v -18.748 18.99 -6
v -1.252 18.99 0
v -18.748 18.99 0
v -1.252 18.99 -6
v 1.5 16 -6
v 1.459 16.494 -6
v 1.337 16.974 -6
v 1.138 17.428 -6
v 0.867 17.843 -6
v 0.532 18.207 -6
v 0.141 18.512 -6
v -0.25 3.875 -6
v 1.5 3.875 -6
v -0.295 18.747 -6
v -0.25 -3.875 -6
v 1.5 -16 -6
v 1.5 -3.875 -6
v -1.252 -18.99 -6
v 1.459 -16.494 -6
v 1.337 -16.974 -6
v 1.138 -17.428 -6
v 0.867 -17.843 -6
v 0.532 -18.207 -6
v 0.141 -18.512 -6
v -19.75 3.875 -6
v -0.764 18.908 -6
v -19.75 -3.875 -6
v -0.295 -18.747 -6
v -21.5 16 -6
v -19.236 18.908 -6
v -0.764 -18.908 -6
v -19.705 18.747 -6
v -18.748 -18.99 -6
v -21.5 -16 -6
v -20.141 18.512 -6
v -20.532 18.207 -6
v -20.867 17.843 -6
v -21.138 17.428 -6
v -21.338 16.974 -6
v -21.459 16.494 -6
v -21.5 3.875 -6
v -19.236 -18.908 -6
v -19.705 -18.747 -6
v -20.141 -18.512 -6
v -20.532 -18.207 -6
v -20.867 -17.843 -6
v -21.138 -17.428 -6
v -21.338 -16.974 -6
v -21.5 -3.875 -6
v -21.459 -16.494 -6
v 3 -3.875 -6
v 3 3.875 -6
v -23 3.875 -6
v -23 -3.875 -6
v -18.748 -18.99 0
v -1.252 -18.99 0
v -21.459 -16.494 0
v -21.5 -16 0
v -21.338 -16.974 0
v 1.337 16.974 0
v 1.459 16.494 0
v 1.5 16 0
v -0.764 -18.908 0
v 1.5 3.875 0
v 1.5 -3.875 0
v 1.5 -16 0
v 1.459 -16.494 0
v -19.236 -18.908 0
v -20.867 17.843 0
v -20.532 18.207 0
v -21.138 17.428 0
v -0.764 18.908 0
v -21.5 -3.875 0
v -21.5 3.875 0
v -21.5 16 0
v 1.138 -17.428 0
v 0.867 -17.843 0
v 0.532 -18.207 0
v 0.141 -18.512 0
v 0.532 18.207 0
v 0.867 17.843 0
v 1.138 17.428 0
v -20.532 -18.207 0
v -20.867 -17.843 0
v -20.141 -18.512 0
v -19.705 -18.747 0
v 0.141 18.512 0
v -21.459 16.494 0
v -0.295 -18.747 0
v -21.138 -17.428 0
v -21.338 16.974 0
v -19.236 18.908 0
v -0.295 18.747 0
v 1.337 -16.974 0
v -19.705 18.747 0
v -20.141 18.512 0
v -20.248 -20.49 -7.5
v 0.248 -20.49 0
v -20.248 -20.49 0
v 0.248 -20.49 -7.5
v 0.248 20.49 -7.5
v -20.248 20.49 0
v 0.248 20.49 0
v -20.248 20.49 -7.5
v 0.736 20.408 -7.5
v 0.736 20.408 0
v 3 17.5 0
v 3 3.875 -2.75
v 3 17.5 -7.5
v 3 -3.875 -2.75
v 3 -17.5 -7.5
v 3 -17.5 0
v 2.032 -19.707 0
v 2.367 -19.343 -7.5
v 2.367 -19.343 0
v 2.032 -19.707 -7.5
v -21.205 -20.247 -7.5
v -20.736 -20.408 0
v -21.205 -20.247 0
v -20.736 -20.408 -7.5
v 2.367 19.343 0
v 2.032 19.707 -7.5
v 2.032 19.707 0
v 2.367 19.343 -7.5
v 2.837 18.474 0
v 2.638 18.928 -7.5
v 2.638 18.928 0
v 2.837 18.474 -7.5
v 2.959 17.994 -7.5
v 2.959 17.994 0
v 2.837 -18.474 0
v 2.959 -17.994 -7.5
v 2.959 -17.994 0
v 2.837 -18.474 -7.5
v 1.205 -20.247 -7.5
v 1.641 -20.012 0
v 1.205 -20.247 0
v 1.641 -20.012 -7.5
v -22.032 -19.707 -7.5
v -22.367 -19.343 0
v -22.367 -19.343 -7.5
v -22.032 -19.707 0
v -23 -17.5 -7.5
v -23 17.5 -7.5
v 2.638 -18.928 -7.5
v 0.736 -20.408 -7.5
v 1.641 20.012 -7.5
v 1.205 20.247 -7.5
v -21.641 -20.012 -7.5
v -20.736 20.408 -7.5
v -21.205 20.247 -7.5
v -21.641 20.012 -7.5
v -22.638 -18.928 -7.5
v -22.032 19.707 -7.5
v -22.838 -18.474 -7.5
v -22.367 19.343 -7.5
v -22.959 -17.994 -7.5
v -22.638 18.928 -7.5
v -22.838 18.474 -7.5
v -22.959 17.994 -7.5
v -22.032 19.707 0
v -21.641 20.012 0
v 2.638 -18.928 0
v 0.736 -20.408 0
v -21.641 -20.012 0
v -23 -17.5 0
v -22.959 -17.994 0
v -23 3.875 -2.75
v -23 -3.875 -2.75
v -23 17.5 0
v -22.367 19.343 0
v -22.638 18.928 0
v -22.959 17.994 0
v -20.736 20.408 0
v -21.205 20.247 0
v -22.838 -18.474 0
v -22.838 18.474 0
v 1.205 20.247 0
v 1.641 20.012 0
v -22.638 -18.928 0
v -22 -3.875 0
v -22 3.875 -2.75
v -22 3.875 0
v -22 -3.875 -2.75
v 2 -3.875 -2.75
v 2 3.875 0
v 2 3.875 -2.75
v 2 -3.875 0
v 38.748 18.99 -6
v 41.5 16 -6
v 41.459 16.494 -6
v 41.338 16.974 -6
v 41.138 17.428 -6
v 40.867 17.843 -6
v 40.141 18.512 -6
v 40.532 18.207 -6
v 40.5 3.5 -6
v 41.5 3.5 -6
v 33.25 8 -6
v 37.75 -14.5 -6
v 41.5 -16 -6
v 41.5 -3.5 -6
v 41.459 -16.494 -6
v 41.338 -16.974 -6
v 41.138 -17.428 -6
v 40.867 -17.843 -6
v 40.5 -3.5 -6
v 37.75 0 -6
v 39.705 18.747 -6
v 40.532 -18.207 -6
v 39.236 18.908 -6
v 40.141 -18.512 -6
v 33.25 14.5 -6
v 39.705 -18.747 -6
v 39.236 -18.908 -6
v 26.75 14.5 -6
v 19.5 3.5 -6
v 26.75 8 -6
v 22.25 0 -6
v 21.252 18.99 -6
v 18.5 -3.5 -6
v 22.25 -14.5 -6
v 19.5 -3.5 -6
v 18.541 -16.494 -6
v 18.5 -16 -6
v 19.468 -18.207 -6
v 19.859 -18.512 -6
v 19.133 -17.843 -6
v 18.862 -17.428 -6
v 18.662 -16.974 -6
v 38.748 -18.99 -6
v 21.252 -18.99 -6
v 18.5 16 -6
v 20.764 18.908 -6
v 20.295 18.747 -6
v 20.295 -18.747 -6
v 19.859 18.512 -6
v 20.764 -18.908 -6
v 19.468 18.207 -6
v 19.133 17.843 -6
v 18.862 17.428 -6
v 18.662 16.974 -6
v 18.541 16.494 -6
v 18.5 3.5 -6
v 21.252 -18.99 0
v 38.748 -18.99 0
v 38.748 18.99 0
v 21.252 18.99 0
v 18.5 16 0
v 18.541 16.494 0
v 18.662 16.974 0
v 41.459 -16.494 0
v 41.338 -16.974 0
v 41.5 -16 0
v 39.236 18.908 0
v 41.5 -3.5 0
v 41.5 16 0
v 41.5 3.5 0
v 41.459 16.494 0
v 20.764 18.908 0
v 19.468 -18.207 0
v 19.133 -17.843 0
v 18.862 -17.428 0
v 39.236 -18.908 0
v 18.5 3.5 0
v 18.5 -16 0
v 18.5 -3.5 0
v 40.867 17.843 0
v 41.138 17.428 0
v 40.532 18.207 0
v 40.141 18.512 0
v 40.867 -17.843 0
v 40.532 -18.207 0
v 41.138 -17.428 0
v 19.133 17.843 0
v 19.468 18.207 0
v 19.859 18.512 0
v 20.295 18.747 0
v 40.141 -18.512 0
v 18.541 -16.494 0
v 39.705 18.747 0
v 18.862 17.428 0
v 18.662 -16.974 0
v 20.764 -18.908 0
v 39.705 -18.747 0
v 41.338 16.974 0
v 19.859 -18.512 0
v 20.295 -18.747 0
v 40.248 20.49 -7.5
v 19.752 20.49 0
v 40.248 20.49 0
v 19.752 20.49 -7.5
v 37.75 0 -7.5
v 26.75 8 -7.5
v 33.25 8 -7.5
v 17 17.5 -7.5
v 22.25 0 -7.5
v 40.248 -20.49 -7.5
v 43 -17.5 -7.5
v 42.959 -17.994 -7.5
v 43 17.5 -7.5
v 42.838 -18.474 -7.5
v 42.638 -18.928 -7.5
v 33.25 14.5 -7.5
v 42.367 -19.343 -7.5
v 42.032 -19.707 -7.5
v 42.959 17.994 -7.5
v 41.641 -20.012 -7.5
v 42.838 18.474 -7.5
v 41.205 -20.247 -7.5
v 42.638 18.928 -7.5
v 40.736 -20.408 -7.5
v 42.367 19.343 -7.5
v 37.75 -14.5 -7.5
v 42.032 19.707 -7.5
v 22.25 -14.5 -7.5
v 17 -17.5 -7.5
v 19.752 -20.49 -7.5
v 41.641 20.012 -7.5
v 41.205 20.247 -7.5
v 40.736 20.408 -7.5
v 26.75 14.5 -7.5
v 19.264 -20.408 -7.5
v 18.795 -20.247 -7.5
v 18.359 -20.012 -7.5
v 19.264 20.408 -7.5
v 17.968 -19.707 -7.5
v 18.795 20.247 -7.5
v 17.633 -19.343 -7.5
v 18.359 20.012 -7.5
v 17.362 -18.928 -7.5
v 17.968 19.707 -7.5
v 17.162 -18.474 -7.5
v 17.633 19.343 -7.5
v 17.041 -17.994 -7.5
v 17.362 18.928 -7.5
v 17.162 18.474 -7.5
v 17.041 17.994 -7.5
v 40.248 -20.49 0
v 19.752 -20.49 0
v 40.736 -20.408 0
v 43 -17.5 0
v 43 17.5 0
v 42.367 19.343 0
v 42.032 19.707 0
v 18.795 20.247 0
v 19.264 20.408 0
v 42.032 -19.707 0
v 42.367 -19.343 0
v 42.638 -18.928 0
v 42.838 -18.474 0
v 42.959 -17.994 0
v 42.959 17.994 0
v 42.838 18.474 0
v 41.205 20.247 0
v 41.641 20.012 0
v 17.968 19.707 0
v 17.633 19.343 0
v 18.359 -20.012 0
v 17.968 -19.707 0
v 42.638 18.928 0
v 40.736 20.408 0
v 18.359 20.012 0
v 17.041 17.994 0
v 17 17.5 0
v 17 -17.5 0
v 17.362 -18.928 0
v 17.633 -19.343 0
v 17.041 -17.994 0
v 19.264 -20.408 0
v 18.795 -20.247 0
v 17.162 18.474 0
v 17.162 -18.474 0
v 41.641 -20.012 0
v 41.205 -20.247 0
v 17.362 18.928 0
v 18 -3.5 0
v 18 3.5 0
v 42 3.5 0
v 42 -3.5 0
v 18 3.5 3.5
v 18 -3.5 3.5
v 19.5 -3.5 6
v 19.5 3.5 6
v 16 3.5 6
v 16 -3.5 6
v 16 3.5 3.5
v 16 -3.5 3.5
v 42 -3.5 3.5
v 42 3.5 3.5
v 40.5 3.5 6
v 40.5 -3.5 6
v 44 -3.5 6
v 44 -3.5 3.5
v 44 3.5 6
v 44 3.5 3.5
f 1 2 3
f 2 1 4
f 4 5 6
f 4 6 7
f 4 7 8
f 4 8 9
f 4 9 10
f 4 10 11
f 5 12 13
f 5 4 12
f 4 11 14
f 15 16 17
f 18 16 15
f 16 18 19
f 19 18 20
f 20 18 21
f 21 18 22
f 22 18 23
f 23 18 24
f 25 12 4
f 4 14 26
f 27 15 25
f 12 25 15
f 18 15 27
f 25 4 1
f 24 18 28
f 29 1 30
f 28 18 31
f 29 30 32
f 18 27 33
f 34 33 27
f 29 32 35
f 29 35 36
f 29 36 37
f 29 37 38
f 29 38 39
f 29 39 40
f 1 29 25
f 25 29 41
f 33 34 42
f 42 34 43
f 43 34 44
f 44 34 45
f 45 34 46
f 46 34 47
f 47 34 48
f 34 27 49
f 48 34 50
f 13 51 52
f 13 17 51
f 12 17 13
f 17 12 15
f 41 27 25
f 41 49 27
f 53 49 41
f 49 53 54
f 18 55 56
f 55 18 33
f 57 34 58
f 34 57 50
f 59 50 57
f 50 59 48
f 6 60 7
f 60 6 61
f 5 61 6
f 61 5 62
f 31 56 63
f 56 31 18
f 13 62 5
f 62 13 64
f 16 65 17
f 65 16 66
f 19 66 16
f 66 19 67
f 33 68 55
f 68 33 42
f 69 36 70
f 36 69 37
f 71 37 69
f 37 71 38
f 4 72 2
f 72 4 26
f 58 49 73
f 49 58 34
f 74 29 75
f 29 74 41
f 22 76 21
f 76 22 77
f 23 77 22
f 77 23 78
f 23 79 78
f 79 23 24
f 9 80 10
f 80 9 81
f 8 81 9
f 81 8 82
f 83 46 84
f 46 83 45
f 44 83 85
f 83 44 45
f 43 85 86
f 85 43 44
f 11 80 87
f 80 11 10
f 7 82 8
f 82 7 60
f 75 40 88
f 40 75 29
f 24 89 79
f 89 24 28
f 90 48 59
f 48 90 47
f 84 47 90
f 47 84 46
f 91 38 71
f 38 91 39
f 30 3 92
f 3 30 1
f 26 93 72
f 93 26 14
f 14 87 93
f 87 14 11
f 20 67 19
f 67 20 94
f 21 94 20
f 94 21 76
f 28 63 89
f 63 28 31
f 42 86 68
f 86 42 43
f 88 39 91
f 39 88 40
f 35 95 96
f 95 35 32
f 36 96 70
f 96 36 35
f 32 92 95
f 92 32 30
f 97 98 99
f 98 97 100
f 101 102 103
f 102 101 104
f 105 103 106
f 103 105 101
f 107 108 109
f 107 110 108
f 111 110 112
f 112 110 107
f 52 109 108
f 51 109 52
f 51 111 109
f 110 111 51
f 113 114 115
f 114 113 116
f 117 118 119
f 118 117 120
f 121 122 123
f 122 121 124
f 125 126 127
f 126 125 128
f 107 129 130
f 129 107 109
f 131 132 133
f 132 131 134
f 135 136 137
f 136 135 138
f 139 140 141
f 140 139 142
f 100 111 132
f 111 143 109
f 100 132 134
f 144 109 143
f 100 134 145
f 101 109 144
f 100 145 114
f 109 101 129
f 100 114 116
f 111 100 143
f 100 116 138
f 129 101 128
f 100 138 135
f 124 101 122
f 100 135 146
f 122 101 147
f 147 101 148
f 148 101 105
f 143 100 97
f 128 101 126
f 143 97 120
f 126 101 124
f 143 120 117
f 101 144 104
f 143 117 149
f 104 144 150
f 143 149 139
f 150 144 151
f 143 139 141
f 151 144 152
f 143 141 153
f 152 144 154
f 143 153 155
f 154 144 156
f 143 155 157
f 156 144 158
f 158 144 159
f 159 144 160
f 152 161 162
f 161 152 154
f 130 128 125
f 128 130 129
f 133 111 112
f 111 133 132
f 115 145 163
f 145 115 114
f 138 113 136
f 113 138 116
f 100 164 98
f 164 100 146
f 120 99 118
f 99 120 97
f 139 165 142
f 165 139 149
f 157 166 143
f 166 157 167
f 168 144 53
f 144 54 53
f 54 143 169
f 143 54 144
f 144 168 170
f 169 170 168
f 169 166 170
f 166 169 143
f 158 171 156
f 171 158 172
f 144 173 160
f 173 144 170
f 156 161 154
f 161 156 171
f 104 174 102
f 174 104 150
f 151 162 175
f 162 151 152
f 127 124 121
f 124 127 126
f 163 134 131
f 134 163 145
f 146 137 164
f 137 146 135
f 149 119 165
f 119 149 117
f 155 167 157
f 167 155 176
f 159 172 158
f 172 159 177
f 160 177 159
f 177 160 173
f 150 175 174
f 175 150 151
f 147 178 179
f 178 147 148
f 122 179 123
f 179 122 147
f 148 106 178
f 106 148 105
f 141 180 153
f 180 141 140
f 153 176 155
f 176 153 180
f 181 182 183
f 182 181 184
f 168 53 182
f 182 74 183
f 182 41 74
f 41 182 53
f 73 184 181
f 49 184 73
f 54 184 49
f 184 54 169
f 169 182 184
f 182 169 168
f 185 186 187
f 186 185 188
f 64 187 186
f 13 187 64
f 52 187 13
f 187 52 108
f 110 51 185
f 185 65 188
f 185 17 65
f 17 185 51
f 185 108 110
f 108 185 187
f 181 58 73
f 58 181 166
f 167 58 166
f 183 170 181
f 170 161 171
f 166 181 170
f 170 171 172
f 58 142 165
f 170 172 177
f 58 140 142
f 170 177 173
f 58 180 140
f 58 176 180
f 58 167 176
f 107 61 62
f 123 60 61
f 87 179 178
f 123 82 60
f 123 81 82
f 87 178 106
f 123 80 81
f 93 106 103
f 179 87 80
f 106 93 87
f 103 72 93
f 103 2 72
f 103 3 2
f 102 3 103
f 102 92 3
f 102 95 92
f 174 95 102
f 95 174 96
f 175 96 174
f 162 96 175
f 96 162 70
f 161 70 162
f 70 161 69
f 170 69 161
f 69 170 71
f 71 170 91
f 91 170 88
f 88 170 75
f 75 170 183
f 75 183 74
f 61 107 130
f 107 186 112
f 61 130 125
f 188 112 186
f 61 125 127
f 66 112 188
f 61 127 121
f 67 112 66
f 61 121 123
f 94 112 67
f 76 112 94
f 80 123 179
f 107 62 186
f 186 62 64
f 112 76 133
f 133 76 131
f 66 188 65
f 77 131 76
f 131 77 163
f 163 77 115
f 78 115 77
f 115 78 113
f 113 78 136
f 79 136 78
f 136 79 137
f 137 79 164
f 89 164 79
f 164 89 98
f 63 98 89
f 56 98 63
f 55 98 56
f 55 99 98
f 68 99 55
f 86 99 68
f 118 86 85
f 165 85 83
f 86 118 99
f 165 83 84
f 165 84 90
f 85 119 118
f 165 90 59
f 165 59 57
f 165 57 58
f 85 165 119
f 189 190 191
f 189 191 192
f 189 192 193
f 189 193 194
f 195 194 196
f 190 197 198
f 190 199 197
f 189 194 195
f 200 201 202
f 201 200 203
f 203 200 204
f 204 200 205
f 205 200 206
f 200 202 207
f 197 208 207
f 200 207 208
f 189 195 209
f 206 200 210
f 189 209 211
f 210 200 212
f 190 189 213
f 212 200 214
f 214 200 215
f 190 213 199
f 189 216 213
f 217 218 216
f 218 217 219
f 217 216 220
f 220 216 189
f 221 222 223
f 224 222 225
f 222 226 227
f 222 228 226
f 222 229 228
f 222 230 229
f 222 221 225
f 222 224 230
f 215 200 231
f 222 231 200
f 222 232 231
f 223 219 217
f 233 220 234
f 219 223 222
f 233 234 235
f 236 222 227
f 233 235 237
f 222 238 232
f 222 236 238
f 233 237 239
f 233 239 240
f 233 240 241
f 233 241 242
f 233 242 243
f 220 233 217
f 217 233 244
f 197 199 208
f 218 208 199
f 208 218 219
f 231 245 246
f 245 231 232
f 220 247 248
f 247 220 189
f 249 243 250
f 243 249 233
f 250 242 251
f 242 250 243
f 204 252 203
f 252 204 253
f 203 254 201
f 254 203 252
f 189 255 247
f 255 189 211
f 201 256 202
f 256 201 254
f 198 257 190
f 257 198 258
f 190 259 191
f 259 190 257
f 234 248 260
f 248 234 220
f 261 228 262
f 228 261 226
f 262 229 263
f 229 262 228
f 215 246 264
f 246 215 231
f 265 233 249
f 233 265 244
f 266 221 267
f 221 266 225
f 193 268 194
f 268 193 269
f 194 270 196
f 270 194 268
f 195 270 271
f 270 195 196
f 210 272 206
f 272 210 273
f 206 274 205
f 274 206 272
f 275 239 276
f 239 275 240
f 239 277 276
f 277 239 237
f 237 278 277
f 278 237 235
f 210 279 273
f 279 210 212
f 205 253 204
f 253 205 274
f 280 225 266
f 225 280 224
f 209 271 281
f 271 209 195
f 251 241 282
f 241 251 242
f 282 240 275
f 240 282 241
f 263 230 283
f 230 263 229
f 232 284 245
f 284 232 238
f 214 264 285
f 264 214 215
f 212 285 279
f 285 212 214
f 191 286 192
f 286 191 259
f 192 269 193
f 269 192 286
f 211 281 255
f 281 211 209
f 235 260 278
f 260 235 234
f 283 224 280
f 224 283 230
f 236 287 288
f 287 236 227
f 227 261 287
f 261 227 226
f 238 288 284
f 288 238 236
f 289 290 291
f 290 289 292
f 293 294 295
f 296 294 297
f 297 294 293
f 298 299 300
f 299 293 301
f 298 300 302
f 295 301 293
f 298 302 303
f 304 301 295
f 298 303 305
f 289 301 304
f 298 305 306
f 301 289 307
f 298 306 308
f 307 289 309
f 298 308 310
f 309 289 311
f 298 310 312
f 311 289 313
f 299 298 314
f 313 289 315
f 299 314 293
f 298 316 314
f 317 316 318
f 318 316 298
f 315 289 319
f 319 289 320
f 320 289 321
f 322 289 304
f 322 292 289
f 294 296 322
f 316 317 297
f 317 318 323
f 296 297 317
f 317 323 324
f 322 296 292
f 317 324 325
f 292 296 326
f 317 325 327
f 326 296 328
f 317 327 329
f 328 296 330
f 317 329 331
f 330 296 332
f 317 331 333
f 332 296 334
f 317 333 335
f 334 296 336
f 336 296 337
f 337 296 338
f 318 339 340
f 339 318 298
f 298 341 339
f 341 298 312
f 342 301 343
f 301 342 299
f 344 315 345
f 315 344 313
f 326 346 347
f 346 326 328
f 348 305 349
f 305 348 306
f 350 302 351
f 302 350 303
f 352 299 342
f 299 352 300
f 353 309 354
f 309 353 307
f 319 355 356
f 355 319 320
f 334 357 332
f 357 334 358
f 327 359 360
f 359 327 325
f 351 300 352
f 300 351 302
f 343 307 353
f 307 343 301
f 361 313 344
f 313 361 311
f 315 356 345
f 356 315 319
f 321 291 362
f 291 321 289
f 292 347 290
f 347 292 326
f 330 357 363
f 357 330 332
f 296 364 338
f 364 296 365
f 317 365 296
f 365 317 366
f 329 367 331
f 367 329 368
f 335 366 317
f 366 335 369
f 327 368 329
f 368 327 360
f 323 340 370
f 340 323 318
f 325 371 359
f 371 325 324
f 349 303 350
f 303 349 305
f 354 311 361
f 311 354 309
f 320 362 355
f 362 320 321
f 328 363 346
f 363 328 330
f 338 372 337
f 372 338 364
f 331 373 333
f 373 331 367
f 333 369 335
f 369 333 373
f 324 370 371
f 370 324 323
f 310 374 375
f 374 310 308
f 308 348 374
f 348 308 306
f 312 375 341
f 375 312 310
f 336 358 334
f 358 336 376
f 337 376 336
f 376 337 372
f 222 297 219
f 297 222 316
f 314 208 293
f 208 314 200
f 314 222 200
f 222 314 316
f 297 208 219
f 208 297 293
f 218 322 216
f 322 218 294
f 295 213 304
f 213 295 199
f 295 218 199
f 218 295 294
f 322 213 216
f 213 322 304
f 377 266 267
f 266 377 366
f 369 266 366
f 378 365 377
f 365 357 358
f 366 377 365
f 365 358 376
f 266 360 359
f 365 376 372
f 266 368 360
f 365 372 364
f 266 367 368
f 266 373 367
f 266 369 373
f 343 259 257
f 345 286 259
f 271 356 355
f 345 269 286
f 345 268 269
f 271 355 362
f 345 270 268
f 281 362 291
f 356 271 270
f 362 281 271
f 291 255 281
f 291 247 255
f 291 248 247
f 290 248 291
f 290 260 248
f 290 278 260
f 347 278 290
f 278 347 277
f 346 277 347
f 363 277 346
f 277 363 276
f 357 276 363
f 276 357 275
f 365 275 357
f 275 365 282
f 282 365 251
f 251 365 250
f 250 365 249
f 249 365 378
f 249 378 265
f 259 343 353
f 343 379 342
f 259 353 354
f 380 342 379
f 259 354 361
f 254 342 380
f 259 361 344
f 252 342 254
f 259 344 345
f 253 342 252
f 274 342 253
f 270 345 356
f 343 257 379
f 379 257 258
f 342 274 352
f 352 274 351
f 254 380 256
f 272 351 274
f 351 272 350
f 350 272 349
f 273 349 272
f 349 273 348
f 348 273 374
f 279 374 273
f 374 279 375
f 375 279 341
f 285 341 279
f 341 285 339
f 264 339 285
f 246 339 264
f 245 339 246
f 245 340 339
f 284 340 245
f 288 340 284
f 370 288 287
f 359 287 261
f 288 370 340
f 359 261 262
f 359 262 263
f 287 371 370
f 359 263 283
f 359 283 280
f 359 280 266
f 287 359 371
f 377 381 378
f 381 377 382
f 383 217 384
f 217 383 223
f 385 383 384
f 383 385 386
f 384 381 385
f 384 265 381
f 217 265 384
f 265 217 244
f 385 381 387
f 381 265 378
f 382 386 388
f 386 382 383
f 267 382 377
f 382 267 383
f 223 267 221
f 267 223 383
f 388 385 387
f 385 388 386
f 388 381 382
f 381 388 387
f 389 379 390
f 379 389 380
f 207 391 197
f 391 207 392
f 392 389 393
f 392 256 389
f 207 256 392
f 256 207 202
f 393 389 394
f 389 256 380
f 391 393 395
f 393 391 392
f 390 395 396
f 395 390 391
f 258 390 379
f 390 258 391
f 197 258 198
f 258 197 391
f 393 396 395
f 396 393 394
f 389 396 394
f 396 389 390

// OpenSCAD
$fa = 1;
$fs = 0.5;
$fn = 0;

wall = 1.5;
dims = [20, 35, 15];
cutout = [15.5, 14.5, 2*wall];
corner_r = 3;
offset = 3;
lip = 1;
dist = 10;

latch = [wall, 7, dims[2]-wall];

button = [6.5,6.5,2*wall];
offset_button = 3;

module skin(debug=false, thickness=5, box=400) {
    if (!debug) intersection() { 
        children(); 
        minkowski() {
            cube(2*thickness,center=true);
            difference() { 
                cube(box,center=true); 
                children(); 
            } 
        } 
    }
    
    if (debug) children();
}

module enclosure(thickness=10) {
    difference() {
        skin(thickness=thickness) {
            hull() {
                translate([0,0,0]) cylinder(h=dims[2], r=corner_r, center=true);
                translate([dims[0],0,0]) cylinder(h=dims[2], r=corner_r, center=true);
                translate([0,dims[1],0]) cylinder(h=dims[2], r=corner_r, center=true);
                translate([dims[0],dims[1],0]) cylinder(h=dims[2], r=corner_r, center=true);
            }
        }
        translate([dims[0]/2-cutout[0]/2, dims[1]-cutout[1]-offset, dims[2]/2-cutout[2]/2]) 
            cube(cutout);
        translate([dims[0]/2-button[0]/2, offset_button, dims[2]/2-button[2]/2])
            cube(button);
    }
}

module latch__(addition=0) {
    latch_(addition);
    translate([dims[0],0,0]) mirror([1,0,0]) latch_(addition);
}

module latch_(addition=0) {
    translate([-corner_r+1, dims[1]/2-latch[1]/2-addition/2, -dims[2]/2+wall]) 
        cube([latch[0],latch[1]+addition,latch[2]]);
    translate([-corner_r-1, dims[1]/2-latch[1]/2-addition/2, -dims[2]/2+wall]) 
        cube([latch[0]+2+addition, latch[1]+addition, wall+1+addition]);
}

module bottom() {
    difference() {
        enclosure(thickness=wall);
        translate([-dims[0], -dims[1], 0]) cube([4*dims[0], 4*dims[1], dims[2]]);
        latch__(0.75);
    }
}

module top() {
    difference() {
        enclosure(thickness=wall);
        translate([-dims[0], -dims[1], -dims[2]]) cube([4*dims[0], 4*dims[1], dims[2]]);
    }
    latch__();
}

translate([-dims[0]/2-dist, -dims[1]/2, 0]) bottom();
translate([dims[0]/2+dist, dims[1]/2, 0]) rotate([180,0,0]) top();
